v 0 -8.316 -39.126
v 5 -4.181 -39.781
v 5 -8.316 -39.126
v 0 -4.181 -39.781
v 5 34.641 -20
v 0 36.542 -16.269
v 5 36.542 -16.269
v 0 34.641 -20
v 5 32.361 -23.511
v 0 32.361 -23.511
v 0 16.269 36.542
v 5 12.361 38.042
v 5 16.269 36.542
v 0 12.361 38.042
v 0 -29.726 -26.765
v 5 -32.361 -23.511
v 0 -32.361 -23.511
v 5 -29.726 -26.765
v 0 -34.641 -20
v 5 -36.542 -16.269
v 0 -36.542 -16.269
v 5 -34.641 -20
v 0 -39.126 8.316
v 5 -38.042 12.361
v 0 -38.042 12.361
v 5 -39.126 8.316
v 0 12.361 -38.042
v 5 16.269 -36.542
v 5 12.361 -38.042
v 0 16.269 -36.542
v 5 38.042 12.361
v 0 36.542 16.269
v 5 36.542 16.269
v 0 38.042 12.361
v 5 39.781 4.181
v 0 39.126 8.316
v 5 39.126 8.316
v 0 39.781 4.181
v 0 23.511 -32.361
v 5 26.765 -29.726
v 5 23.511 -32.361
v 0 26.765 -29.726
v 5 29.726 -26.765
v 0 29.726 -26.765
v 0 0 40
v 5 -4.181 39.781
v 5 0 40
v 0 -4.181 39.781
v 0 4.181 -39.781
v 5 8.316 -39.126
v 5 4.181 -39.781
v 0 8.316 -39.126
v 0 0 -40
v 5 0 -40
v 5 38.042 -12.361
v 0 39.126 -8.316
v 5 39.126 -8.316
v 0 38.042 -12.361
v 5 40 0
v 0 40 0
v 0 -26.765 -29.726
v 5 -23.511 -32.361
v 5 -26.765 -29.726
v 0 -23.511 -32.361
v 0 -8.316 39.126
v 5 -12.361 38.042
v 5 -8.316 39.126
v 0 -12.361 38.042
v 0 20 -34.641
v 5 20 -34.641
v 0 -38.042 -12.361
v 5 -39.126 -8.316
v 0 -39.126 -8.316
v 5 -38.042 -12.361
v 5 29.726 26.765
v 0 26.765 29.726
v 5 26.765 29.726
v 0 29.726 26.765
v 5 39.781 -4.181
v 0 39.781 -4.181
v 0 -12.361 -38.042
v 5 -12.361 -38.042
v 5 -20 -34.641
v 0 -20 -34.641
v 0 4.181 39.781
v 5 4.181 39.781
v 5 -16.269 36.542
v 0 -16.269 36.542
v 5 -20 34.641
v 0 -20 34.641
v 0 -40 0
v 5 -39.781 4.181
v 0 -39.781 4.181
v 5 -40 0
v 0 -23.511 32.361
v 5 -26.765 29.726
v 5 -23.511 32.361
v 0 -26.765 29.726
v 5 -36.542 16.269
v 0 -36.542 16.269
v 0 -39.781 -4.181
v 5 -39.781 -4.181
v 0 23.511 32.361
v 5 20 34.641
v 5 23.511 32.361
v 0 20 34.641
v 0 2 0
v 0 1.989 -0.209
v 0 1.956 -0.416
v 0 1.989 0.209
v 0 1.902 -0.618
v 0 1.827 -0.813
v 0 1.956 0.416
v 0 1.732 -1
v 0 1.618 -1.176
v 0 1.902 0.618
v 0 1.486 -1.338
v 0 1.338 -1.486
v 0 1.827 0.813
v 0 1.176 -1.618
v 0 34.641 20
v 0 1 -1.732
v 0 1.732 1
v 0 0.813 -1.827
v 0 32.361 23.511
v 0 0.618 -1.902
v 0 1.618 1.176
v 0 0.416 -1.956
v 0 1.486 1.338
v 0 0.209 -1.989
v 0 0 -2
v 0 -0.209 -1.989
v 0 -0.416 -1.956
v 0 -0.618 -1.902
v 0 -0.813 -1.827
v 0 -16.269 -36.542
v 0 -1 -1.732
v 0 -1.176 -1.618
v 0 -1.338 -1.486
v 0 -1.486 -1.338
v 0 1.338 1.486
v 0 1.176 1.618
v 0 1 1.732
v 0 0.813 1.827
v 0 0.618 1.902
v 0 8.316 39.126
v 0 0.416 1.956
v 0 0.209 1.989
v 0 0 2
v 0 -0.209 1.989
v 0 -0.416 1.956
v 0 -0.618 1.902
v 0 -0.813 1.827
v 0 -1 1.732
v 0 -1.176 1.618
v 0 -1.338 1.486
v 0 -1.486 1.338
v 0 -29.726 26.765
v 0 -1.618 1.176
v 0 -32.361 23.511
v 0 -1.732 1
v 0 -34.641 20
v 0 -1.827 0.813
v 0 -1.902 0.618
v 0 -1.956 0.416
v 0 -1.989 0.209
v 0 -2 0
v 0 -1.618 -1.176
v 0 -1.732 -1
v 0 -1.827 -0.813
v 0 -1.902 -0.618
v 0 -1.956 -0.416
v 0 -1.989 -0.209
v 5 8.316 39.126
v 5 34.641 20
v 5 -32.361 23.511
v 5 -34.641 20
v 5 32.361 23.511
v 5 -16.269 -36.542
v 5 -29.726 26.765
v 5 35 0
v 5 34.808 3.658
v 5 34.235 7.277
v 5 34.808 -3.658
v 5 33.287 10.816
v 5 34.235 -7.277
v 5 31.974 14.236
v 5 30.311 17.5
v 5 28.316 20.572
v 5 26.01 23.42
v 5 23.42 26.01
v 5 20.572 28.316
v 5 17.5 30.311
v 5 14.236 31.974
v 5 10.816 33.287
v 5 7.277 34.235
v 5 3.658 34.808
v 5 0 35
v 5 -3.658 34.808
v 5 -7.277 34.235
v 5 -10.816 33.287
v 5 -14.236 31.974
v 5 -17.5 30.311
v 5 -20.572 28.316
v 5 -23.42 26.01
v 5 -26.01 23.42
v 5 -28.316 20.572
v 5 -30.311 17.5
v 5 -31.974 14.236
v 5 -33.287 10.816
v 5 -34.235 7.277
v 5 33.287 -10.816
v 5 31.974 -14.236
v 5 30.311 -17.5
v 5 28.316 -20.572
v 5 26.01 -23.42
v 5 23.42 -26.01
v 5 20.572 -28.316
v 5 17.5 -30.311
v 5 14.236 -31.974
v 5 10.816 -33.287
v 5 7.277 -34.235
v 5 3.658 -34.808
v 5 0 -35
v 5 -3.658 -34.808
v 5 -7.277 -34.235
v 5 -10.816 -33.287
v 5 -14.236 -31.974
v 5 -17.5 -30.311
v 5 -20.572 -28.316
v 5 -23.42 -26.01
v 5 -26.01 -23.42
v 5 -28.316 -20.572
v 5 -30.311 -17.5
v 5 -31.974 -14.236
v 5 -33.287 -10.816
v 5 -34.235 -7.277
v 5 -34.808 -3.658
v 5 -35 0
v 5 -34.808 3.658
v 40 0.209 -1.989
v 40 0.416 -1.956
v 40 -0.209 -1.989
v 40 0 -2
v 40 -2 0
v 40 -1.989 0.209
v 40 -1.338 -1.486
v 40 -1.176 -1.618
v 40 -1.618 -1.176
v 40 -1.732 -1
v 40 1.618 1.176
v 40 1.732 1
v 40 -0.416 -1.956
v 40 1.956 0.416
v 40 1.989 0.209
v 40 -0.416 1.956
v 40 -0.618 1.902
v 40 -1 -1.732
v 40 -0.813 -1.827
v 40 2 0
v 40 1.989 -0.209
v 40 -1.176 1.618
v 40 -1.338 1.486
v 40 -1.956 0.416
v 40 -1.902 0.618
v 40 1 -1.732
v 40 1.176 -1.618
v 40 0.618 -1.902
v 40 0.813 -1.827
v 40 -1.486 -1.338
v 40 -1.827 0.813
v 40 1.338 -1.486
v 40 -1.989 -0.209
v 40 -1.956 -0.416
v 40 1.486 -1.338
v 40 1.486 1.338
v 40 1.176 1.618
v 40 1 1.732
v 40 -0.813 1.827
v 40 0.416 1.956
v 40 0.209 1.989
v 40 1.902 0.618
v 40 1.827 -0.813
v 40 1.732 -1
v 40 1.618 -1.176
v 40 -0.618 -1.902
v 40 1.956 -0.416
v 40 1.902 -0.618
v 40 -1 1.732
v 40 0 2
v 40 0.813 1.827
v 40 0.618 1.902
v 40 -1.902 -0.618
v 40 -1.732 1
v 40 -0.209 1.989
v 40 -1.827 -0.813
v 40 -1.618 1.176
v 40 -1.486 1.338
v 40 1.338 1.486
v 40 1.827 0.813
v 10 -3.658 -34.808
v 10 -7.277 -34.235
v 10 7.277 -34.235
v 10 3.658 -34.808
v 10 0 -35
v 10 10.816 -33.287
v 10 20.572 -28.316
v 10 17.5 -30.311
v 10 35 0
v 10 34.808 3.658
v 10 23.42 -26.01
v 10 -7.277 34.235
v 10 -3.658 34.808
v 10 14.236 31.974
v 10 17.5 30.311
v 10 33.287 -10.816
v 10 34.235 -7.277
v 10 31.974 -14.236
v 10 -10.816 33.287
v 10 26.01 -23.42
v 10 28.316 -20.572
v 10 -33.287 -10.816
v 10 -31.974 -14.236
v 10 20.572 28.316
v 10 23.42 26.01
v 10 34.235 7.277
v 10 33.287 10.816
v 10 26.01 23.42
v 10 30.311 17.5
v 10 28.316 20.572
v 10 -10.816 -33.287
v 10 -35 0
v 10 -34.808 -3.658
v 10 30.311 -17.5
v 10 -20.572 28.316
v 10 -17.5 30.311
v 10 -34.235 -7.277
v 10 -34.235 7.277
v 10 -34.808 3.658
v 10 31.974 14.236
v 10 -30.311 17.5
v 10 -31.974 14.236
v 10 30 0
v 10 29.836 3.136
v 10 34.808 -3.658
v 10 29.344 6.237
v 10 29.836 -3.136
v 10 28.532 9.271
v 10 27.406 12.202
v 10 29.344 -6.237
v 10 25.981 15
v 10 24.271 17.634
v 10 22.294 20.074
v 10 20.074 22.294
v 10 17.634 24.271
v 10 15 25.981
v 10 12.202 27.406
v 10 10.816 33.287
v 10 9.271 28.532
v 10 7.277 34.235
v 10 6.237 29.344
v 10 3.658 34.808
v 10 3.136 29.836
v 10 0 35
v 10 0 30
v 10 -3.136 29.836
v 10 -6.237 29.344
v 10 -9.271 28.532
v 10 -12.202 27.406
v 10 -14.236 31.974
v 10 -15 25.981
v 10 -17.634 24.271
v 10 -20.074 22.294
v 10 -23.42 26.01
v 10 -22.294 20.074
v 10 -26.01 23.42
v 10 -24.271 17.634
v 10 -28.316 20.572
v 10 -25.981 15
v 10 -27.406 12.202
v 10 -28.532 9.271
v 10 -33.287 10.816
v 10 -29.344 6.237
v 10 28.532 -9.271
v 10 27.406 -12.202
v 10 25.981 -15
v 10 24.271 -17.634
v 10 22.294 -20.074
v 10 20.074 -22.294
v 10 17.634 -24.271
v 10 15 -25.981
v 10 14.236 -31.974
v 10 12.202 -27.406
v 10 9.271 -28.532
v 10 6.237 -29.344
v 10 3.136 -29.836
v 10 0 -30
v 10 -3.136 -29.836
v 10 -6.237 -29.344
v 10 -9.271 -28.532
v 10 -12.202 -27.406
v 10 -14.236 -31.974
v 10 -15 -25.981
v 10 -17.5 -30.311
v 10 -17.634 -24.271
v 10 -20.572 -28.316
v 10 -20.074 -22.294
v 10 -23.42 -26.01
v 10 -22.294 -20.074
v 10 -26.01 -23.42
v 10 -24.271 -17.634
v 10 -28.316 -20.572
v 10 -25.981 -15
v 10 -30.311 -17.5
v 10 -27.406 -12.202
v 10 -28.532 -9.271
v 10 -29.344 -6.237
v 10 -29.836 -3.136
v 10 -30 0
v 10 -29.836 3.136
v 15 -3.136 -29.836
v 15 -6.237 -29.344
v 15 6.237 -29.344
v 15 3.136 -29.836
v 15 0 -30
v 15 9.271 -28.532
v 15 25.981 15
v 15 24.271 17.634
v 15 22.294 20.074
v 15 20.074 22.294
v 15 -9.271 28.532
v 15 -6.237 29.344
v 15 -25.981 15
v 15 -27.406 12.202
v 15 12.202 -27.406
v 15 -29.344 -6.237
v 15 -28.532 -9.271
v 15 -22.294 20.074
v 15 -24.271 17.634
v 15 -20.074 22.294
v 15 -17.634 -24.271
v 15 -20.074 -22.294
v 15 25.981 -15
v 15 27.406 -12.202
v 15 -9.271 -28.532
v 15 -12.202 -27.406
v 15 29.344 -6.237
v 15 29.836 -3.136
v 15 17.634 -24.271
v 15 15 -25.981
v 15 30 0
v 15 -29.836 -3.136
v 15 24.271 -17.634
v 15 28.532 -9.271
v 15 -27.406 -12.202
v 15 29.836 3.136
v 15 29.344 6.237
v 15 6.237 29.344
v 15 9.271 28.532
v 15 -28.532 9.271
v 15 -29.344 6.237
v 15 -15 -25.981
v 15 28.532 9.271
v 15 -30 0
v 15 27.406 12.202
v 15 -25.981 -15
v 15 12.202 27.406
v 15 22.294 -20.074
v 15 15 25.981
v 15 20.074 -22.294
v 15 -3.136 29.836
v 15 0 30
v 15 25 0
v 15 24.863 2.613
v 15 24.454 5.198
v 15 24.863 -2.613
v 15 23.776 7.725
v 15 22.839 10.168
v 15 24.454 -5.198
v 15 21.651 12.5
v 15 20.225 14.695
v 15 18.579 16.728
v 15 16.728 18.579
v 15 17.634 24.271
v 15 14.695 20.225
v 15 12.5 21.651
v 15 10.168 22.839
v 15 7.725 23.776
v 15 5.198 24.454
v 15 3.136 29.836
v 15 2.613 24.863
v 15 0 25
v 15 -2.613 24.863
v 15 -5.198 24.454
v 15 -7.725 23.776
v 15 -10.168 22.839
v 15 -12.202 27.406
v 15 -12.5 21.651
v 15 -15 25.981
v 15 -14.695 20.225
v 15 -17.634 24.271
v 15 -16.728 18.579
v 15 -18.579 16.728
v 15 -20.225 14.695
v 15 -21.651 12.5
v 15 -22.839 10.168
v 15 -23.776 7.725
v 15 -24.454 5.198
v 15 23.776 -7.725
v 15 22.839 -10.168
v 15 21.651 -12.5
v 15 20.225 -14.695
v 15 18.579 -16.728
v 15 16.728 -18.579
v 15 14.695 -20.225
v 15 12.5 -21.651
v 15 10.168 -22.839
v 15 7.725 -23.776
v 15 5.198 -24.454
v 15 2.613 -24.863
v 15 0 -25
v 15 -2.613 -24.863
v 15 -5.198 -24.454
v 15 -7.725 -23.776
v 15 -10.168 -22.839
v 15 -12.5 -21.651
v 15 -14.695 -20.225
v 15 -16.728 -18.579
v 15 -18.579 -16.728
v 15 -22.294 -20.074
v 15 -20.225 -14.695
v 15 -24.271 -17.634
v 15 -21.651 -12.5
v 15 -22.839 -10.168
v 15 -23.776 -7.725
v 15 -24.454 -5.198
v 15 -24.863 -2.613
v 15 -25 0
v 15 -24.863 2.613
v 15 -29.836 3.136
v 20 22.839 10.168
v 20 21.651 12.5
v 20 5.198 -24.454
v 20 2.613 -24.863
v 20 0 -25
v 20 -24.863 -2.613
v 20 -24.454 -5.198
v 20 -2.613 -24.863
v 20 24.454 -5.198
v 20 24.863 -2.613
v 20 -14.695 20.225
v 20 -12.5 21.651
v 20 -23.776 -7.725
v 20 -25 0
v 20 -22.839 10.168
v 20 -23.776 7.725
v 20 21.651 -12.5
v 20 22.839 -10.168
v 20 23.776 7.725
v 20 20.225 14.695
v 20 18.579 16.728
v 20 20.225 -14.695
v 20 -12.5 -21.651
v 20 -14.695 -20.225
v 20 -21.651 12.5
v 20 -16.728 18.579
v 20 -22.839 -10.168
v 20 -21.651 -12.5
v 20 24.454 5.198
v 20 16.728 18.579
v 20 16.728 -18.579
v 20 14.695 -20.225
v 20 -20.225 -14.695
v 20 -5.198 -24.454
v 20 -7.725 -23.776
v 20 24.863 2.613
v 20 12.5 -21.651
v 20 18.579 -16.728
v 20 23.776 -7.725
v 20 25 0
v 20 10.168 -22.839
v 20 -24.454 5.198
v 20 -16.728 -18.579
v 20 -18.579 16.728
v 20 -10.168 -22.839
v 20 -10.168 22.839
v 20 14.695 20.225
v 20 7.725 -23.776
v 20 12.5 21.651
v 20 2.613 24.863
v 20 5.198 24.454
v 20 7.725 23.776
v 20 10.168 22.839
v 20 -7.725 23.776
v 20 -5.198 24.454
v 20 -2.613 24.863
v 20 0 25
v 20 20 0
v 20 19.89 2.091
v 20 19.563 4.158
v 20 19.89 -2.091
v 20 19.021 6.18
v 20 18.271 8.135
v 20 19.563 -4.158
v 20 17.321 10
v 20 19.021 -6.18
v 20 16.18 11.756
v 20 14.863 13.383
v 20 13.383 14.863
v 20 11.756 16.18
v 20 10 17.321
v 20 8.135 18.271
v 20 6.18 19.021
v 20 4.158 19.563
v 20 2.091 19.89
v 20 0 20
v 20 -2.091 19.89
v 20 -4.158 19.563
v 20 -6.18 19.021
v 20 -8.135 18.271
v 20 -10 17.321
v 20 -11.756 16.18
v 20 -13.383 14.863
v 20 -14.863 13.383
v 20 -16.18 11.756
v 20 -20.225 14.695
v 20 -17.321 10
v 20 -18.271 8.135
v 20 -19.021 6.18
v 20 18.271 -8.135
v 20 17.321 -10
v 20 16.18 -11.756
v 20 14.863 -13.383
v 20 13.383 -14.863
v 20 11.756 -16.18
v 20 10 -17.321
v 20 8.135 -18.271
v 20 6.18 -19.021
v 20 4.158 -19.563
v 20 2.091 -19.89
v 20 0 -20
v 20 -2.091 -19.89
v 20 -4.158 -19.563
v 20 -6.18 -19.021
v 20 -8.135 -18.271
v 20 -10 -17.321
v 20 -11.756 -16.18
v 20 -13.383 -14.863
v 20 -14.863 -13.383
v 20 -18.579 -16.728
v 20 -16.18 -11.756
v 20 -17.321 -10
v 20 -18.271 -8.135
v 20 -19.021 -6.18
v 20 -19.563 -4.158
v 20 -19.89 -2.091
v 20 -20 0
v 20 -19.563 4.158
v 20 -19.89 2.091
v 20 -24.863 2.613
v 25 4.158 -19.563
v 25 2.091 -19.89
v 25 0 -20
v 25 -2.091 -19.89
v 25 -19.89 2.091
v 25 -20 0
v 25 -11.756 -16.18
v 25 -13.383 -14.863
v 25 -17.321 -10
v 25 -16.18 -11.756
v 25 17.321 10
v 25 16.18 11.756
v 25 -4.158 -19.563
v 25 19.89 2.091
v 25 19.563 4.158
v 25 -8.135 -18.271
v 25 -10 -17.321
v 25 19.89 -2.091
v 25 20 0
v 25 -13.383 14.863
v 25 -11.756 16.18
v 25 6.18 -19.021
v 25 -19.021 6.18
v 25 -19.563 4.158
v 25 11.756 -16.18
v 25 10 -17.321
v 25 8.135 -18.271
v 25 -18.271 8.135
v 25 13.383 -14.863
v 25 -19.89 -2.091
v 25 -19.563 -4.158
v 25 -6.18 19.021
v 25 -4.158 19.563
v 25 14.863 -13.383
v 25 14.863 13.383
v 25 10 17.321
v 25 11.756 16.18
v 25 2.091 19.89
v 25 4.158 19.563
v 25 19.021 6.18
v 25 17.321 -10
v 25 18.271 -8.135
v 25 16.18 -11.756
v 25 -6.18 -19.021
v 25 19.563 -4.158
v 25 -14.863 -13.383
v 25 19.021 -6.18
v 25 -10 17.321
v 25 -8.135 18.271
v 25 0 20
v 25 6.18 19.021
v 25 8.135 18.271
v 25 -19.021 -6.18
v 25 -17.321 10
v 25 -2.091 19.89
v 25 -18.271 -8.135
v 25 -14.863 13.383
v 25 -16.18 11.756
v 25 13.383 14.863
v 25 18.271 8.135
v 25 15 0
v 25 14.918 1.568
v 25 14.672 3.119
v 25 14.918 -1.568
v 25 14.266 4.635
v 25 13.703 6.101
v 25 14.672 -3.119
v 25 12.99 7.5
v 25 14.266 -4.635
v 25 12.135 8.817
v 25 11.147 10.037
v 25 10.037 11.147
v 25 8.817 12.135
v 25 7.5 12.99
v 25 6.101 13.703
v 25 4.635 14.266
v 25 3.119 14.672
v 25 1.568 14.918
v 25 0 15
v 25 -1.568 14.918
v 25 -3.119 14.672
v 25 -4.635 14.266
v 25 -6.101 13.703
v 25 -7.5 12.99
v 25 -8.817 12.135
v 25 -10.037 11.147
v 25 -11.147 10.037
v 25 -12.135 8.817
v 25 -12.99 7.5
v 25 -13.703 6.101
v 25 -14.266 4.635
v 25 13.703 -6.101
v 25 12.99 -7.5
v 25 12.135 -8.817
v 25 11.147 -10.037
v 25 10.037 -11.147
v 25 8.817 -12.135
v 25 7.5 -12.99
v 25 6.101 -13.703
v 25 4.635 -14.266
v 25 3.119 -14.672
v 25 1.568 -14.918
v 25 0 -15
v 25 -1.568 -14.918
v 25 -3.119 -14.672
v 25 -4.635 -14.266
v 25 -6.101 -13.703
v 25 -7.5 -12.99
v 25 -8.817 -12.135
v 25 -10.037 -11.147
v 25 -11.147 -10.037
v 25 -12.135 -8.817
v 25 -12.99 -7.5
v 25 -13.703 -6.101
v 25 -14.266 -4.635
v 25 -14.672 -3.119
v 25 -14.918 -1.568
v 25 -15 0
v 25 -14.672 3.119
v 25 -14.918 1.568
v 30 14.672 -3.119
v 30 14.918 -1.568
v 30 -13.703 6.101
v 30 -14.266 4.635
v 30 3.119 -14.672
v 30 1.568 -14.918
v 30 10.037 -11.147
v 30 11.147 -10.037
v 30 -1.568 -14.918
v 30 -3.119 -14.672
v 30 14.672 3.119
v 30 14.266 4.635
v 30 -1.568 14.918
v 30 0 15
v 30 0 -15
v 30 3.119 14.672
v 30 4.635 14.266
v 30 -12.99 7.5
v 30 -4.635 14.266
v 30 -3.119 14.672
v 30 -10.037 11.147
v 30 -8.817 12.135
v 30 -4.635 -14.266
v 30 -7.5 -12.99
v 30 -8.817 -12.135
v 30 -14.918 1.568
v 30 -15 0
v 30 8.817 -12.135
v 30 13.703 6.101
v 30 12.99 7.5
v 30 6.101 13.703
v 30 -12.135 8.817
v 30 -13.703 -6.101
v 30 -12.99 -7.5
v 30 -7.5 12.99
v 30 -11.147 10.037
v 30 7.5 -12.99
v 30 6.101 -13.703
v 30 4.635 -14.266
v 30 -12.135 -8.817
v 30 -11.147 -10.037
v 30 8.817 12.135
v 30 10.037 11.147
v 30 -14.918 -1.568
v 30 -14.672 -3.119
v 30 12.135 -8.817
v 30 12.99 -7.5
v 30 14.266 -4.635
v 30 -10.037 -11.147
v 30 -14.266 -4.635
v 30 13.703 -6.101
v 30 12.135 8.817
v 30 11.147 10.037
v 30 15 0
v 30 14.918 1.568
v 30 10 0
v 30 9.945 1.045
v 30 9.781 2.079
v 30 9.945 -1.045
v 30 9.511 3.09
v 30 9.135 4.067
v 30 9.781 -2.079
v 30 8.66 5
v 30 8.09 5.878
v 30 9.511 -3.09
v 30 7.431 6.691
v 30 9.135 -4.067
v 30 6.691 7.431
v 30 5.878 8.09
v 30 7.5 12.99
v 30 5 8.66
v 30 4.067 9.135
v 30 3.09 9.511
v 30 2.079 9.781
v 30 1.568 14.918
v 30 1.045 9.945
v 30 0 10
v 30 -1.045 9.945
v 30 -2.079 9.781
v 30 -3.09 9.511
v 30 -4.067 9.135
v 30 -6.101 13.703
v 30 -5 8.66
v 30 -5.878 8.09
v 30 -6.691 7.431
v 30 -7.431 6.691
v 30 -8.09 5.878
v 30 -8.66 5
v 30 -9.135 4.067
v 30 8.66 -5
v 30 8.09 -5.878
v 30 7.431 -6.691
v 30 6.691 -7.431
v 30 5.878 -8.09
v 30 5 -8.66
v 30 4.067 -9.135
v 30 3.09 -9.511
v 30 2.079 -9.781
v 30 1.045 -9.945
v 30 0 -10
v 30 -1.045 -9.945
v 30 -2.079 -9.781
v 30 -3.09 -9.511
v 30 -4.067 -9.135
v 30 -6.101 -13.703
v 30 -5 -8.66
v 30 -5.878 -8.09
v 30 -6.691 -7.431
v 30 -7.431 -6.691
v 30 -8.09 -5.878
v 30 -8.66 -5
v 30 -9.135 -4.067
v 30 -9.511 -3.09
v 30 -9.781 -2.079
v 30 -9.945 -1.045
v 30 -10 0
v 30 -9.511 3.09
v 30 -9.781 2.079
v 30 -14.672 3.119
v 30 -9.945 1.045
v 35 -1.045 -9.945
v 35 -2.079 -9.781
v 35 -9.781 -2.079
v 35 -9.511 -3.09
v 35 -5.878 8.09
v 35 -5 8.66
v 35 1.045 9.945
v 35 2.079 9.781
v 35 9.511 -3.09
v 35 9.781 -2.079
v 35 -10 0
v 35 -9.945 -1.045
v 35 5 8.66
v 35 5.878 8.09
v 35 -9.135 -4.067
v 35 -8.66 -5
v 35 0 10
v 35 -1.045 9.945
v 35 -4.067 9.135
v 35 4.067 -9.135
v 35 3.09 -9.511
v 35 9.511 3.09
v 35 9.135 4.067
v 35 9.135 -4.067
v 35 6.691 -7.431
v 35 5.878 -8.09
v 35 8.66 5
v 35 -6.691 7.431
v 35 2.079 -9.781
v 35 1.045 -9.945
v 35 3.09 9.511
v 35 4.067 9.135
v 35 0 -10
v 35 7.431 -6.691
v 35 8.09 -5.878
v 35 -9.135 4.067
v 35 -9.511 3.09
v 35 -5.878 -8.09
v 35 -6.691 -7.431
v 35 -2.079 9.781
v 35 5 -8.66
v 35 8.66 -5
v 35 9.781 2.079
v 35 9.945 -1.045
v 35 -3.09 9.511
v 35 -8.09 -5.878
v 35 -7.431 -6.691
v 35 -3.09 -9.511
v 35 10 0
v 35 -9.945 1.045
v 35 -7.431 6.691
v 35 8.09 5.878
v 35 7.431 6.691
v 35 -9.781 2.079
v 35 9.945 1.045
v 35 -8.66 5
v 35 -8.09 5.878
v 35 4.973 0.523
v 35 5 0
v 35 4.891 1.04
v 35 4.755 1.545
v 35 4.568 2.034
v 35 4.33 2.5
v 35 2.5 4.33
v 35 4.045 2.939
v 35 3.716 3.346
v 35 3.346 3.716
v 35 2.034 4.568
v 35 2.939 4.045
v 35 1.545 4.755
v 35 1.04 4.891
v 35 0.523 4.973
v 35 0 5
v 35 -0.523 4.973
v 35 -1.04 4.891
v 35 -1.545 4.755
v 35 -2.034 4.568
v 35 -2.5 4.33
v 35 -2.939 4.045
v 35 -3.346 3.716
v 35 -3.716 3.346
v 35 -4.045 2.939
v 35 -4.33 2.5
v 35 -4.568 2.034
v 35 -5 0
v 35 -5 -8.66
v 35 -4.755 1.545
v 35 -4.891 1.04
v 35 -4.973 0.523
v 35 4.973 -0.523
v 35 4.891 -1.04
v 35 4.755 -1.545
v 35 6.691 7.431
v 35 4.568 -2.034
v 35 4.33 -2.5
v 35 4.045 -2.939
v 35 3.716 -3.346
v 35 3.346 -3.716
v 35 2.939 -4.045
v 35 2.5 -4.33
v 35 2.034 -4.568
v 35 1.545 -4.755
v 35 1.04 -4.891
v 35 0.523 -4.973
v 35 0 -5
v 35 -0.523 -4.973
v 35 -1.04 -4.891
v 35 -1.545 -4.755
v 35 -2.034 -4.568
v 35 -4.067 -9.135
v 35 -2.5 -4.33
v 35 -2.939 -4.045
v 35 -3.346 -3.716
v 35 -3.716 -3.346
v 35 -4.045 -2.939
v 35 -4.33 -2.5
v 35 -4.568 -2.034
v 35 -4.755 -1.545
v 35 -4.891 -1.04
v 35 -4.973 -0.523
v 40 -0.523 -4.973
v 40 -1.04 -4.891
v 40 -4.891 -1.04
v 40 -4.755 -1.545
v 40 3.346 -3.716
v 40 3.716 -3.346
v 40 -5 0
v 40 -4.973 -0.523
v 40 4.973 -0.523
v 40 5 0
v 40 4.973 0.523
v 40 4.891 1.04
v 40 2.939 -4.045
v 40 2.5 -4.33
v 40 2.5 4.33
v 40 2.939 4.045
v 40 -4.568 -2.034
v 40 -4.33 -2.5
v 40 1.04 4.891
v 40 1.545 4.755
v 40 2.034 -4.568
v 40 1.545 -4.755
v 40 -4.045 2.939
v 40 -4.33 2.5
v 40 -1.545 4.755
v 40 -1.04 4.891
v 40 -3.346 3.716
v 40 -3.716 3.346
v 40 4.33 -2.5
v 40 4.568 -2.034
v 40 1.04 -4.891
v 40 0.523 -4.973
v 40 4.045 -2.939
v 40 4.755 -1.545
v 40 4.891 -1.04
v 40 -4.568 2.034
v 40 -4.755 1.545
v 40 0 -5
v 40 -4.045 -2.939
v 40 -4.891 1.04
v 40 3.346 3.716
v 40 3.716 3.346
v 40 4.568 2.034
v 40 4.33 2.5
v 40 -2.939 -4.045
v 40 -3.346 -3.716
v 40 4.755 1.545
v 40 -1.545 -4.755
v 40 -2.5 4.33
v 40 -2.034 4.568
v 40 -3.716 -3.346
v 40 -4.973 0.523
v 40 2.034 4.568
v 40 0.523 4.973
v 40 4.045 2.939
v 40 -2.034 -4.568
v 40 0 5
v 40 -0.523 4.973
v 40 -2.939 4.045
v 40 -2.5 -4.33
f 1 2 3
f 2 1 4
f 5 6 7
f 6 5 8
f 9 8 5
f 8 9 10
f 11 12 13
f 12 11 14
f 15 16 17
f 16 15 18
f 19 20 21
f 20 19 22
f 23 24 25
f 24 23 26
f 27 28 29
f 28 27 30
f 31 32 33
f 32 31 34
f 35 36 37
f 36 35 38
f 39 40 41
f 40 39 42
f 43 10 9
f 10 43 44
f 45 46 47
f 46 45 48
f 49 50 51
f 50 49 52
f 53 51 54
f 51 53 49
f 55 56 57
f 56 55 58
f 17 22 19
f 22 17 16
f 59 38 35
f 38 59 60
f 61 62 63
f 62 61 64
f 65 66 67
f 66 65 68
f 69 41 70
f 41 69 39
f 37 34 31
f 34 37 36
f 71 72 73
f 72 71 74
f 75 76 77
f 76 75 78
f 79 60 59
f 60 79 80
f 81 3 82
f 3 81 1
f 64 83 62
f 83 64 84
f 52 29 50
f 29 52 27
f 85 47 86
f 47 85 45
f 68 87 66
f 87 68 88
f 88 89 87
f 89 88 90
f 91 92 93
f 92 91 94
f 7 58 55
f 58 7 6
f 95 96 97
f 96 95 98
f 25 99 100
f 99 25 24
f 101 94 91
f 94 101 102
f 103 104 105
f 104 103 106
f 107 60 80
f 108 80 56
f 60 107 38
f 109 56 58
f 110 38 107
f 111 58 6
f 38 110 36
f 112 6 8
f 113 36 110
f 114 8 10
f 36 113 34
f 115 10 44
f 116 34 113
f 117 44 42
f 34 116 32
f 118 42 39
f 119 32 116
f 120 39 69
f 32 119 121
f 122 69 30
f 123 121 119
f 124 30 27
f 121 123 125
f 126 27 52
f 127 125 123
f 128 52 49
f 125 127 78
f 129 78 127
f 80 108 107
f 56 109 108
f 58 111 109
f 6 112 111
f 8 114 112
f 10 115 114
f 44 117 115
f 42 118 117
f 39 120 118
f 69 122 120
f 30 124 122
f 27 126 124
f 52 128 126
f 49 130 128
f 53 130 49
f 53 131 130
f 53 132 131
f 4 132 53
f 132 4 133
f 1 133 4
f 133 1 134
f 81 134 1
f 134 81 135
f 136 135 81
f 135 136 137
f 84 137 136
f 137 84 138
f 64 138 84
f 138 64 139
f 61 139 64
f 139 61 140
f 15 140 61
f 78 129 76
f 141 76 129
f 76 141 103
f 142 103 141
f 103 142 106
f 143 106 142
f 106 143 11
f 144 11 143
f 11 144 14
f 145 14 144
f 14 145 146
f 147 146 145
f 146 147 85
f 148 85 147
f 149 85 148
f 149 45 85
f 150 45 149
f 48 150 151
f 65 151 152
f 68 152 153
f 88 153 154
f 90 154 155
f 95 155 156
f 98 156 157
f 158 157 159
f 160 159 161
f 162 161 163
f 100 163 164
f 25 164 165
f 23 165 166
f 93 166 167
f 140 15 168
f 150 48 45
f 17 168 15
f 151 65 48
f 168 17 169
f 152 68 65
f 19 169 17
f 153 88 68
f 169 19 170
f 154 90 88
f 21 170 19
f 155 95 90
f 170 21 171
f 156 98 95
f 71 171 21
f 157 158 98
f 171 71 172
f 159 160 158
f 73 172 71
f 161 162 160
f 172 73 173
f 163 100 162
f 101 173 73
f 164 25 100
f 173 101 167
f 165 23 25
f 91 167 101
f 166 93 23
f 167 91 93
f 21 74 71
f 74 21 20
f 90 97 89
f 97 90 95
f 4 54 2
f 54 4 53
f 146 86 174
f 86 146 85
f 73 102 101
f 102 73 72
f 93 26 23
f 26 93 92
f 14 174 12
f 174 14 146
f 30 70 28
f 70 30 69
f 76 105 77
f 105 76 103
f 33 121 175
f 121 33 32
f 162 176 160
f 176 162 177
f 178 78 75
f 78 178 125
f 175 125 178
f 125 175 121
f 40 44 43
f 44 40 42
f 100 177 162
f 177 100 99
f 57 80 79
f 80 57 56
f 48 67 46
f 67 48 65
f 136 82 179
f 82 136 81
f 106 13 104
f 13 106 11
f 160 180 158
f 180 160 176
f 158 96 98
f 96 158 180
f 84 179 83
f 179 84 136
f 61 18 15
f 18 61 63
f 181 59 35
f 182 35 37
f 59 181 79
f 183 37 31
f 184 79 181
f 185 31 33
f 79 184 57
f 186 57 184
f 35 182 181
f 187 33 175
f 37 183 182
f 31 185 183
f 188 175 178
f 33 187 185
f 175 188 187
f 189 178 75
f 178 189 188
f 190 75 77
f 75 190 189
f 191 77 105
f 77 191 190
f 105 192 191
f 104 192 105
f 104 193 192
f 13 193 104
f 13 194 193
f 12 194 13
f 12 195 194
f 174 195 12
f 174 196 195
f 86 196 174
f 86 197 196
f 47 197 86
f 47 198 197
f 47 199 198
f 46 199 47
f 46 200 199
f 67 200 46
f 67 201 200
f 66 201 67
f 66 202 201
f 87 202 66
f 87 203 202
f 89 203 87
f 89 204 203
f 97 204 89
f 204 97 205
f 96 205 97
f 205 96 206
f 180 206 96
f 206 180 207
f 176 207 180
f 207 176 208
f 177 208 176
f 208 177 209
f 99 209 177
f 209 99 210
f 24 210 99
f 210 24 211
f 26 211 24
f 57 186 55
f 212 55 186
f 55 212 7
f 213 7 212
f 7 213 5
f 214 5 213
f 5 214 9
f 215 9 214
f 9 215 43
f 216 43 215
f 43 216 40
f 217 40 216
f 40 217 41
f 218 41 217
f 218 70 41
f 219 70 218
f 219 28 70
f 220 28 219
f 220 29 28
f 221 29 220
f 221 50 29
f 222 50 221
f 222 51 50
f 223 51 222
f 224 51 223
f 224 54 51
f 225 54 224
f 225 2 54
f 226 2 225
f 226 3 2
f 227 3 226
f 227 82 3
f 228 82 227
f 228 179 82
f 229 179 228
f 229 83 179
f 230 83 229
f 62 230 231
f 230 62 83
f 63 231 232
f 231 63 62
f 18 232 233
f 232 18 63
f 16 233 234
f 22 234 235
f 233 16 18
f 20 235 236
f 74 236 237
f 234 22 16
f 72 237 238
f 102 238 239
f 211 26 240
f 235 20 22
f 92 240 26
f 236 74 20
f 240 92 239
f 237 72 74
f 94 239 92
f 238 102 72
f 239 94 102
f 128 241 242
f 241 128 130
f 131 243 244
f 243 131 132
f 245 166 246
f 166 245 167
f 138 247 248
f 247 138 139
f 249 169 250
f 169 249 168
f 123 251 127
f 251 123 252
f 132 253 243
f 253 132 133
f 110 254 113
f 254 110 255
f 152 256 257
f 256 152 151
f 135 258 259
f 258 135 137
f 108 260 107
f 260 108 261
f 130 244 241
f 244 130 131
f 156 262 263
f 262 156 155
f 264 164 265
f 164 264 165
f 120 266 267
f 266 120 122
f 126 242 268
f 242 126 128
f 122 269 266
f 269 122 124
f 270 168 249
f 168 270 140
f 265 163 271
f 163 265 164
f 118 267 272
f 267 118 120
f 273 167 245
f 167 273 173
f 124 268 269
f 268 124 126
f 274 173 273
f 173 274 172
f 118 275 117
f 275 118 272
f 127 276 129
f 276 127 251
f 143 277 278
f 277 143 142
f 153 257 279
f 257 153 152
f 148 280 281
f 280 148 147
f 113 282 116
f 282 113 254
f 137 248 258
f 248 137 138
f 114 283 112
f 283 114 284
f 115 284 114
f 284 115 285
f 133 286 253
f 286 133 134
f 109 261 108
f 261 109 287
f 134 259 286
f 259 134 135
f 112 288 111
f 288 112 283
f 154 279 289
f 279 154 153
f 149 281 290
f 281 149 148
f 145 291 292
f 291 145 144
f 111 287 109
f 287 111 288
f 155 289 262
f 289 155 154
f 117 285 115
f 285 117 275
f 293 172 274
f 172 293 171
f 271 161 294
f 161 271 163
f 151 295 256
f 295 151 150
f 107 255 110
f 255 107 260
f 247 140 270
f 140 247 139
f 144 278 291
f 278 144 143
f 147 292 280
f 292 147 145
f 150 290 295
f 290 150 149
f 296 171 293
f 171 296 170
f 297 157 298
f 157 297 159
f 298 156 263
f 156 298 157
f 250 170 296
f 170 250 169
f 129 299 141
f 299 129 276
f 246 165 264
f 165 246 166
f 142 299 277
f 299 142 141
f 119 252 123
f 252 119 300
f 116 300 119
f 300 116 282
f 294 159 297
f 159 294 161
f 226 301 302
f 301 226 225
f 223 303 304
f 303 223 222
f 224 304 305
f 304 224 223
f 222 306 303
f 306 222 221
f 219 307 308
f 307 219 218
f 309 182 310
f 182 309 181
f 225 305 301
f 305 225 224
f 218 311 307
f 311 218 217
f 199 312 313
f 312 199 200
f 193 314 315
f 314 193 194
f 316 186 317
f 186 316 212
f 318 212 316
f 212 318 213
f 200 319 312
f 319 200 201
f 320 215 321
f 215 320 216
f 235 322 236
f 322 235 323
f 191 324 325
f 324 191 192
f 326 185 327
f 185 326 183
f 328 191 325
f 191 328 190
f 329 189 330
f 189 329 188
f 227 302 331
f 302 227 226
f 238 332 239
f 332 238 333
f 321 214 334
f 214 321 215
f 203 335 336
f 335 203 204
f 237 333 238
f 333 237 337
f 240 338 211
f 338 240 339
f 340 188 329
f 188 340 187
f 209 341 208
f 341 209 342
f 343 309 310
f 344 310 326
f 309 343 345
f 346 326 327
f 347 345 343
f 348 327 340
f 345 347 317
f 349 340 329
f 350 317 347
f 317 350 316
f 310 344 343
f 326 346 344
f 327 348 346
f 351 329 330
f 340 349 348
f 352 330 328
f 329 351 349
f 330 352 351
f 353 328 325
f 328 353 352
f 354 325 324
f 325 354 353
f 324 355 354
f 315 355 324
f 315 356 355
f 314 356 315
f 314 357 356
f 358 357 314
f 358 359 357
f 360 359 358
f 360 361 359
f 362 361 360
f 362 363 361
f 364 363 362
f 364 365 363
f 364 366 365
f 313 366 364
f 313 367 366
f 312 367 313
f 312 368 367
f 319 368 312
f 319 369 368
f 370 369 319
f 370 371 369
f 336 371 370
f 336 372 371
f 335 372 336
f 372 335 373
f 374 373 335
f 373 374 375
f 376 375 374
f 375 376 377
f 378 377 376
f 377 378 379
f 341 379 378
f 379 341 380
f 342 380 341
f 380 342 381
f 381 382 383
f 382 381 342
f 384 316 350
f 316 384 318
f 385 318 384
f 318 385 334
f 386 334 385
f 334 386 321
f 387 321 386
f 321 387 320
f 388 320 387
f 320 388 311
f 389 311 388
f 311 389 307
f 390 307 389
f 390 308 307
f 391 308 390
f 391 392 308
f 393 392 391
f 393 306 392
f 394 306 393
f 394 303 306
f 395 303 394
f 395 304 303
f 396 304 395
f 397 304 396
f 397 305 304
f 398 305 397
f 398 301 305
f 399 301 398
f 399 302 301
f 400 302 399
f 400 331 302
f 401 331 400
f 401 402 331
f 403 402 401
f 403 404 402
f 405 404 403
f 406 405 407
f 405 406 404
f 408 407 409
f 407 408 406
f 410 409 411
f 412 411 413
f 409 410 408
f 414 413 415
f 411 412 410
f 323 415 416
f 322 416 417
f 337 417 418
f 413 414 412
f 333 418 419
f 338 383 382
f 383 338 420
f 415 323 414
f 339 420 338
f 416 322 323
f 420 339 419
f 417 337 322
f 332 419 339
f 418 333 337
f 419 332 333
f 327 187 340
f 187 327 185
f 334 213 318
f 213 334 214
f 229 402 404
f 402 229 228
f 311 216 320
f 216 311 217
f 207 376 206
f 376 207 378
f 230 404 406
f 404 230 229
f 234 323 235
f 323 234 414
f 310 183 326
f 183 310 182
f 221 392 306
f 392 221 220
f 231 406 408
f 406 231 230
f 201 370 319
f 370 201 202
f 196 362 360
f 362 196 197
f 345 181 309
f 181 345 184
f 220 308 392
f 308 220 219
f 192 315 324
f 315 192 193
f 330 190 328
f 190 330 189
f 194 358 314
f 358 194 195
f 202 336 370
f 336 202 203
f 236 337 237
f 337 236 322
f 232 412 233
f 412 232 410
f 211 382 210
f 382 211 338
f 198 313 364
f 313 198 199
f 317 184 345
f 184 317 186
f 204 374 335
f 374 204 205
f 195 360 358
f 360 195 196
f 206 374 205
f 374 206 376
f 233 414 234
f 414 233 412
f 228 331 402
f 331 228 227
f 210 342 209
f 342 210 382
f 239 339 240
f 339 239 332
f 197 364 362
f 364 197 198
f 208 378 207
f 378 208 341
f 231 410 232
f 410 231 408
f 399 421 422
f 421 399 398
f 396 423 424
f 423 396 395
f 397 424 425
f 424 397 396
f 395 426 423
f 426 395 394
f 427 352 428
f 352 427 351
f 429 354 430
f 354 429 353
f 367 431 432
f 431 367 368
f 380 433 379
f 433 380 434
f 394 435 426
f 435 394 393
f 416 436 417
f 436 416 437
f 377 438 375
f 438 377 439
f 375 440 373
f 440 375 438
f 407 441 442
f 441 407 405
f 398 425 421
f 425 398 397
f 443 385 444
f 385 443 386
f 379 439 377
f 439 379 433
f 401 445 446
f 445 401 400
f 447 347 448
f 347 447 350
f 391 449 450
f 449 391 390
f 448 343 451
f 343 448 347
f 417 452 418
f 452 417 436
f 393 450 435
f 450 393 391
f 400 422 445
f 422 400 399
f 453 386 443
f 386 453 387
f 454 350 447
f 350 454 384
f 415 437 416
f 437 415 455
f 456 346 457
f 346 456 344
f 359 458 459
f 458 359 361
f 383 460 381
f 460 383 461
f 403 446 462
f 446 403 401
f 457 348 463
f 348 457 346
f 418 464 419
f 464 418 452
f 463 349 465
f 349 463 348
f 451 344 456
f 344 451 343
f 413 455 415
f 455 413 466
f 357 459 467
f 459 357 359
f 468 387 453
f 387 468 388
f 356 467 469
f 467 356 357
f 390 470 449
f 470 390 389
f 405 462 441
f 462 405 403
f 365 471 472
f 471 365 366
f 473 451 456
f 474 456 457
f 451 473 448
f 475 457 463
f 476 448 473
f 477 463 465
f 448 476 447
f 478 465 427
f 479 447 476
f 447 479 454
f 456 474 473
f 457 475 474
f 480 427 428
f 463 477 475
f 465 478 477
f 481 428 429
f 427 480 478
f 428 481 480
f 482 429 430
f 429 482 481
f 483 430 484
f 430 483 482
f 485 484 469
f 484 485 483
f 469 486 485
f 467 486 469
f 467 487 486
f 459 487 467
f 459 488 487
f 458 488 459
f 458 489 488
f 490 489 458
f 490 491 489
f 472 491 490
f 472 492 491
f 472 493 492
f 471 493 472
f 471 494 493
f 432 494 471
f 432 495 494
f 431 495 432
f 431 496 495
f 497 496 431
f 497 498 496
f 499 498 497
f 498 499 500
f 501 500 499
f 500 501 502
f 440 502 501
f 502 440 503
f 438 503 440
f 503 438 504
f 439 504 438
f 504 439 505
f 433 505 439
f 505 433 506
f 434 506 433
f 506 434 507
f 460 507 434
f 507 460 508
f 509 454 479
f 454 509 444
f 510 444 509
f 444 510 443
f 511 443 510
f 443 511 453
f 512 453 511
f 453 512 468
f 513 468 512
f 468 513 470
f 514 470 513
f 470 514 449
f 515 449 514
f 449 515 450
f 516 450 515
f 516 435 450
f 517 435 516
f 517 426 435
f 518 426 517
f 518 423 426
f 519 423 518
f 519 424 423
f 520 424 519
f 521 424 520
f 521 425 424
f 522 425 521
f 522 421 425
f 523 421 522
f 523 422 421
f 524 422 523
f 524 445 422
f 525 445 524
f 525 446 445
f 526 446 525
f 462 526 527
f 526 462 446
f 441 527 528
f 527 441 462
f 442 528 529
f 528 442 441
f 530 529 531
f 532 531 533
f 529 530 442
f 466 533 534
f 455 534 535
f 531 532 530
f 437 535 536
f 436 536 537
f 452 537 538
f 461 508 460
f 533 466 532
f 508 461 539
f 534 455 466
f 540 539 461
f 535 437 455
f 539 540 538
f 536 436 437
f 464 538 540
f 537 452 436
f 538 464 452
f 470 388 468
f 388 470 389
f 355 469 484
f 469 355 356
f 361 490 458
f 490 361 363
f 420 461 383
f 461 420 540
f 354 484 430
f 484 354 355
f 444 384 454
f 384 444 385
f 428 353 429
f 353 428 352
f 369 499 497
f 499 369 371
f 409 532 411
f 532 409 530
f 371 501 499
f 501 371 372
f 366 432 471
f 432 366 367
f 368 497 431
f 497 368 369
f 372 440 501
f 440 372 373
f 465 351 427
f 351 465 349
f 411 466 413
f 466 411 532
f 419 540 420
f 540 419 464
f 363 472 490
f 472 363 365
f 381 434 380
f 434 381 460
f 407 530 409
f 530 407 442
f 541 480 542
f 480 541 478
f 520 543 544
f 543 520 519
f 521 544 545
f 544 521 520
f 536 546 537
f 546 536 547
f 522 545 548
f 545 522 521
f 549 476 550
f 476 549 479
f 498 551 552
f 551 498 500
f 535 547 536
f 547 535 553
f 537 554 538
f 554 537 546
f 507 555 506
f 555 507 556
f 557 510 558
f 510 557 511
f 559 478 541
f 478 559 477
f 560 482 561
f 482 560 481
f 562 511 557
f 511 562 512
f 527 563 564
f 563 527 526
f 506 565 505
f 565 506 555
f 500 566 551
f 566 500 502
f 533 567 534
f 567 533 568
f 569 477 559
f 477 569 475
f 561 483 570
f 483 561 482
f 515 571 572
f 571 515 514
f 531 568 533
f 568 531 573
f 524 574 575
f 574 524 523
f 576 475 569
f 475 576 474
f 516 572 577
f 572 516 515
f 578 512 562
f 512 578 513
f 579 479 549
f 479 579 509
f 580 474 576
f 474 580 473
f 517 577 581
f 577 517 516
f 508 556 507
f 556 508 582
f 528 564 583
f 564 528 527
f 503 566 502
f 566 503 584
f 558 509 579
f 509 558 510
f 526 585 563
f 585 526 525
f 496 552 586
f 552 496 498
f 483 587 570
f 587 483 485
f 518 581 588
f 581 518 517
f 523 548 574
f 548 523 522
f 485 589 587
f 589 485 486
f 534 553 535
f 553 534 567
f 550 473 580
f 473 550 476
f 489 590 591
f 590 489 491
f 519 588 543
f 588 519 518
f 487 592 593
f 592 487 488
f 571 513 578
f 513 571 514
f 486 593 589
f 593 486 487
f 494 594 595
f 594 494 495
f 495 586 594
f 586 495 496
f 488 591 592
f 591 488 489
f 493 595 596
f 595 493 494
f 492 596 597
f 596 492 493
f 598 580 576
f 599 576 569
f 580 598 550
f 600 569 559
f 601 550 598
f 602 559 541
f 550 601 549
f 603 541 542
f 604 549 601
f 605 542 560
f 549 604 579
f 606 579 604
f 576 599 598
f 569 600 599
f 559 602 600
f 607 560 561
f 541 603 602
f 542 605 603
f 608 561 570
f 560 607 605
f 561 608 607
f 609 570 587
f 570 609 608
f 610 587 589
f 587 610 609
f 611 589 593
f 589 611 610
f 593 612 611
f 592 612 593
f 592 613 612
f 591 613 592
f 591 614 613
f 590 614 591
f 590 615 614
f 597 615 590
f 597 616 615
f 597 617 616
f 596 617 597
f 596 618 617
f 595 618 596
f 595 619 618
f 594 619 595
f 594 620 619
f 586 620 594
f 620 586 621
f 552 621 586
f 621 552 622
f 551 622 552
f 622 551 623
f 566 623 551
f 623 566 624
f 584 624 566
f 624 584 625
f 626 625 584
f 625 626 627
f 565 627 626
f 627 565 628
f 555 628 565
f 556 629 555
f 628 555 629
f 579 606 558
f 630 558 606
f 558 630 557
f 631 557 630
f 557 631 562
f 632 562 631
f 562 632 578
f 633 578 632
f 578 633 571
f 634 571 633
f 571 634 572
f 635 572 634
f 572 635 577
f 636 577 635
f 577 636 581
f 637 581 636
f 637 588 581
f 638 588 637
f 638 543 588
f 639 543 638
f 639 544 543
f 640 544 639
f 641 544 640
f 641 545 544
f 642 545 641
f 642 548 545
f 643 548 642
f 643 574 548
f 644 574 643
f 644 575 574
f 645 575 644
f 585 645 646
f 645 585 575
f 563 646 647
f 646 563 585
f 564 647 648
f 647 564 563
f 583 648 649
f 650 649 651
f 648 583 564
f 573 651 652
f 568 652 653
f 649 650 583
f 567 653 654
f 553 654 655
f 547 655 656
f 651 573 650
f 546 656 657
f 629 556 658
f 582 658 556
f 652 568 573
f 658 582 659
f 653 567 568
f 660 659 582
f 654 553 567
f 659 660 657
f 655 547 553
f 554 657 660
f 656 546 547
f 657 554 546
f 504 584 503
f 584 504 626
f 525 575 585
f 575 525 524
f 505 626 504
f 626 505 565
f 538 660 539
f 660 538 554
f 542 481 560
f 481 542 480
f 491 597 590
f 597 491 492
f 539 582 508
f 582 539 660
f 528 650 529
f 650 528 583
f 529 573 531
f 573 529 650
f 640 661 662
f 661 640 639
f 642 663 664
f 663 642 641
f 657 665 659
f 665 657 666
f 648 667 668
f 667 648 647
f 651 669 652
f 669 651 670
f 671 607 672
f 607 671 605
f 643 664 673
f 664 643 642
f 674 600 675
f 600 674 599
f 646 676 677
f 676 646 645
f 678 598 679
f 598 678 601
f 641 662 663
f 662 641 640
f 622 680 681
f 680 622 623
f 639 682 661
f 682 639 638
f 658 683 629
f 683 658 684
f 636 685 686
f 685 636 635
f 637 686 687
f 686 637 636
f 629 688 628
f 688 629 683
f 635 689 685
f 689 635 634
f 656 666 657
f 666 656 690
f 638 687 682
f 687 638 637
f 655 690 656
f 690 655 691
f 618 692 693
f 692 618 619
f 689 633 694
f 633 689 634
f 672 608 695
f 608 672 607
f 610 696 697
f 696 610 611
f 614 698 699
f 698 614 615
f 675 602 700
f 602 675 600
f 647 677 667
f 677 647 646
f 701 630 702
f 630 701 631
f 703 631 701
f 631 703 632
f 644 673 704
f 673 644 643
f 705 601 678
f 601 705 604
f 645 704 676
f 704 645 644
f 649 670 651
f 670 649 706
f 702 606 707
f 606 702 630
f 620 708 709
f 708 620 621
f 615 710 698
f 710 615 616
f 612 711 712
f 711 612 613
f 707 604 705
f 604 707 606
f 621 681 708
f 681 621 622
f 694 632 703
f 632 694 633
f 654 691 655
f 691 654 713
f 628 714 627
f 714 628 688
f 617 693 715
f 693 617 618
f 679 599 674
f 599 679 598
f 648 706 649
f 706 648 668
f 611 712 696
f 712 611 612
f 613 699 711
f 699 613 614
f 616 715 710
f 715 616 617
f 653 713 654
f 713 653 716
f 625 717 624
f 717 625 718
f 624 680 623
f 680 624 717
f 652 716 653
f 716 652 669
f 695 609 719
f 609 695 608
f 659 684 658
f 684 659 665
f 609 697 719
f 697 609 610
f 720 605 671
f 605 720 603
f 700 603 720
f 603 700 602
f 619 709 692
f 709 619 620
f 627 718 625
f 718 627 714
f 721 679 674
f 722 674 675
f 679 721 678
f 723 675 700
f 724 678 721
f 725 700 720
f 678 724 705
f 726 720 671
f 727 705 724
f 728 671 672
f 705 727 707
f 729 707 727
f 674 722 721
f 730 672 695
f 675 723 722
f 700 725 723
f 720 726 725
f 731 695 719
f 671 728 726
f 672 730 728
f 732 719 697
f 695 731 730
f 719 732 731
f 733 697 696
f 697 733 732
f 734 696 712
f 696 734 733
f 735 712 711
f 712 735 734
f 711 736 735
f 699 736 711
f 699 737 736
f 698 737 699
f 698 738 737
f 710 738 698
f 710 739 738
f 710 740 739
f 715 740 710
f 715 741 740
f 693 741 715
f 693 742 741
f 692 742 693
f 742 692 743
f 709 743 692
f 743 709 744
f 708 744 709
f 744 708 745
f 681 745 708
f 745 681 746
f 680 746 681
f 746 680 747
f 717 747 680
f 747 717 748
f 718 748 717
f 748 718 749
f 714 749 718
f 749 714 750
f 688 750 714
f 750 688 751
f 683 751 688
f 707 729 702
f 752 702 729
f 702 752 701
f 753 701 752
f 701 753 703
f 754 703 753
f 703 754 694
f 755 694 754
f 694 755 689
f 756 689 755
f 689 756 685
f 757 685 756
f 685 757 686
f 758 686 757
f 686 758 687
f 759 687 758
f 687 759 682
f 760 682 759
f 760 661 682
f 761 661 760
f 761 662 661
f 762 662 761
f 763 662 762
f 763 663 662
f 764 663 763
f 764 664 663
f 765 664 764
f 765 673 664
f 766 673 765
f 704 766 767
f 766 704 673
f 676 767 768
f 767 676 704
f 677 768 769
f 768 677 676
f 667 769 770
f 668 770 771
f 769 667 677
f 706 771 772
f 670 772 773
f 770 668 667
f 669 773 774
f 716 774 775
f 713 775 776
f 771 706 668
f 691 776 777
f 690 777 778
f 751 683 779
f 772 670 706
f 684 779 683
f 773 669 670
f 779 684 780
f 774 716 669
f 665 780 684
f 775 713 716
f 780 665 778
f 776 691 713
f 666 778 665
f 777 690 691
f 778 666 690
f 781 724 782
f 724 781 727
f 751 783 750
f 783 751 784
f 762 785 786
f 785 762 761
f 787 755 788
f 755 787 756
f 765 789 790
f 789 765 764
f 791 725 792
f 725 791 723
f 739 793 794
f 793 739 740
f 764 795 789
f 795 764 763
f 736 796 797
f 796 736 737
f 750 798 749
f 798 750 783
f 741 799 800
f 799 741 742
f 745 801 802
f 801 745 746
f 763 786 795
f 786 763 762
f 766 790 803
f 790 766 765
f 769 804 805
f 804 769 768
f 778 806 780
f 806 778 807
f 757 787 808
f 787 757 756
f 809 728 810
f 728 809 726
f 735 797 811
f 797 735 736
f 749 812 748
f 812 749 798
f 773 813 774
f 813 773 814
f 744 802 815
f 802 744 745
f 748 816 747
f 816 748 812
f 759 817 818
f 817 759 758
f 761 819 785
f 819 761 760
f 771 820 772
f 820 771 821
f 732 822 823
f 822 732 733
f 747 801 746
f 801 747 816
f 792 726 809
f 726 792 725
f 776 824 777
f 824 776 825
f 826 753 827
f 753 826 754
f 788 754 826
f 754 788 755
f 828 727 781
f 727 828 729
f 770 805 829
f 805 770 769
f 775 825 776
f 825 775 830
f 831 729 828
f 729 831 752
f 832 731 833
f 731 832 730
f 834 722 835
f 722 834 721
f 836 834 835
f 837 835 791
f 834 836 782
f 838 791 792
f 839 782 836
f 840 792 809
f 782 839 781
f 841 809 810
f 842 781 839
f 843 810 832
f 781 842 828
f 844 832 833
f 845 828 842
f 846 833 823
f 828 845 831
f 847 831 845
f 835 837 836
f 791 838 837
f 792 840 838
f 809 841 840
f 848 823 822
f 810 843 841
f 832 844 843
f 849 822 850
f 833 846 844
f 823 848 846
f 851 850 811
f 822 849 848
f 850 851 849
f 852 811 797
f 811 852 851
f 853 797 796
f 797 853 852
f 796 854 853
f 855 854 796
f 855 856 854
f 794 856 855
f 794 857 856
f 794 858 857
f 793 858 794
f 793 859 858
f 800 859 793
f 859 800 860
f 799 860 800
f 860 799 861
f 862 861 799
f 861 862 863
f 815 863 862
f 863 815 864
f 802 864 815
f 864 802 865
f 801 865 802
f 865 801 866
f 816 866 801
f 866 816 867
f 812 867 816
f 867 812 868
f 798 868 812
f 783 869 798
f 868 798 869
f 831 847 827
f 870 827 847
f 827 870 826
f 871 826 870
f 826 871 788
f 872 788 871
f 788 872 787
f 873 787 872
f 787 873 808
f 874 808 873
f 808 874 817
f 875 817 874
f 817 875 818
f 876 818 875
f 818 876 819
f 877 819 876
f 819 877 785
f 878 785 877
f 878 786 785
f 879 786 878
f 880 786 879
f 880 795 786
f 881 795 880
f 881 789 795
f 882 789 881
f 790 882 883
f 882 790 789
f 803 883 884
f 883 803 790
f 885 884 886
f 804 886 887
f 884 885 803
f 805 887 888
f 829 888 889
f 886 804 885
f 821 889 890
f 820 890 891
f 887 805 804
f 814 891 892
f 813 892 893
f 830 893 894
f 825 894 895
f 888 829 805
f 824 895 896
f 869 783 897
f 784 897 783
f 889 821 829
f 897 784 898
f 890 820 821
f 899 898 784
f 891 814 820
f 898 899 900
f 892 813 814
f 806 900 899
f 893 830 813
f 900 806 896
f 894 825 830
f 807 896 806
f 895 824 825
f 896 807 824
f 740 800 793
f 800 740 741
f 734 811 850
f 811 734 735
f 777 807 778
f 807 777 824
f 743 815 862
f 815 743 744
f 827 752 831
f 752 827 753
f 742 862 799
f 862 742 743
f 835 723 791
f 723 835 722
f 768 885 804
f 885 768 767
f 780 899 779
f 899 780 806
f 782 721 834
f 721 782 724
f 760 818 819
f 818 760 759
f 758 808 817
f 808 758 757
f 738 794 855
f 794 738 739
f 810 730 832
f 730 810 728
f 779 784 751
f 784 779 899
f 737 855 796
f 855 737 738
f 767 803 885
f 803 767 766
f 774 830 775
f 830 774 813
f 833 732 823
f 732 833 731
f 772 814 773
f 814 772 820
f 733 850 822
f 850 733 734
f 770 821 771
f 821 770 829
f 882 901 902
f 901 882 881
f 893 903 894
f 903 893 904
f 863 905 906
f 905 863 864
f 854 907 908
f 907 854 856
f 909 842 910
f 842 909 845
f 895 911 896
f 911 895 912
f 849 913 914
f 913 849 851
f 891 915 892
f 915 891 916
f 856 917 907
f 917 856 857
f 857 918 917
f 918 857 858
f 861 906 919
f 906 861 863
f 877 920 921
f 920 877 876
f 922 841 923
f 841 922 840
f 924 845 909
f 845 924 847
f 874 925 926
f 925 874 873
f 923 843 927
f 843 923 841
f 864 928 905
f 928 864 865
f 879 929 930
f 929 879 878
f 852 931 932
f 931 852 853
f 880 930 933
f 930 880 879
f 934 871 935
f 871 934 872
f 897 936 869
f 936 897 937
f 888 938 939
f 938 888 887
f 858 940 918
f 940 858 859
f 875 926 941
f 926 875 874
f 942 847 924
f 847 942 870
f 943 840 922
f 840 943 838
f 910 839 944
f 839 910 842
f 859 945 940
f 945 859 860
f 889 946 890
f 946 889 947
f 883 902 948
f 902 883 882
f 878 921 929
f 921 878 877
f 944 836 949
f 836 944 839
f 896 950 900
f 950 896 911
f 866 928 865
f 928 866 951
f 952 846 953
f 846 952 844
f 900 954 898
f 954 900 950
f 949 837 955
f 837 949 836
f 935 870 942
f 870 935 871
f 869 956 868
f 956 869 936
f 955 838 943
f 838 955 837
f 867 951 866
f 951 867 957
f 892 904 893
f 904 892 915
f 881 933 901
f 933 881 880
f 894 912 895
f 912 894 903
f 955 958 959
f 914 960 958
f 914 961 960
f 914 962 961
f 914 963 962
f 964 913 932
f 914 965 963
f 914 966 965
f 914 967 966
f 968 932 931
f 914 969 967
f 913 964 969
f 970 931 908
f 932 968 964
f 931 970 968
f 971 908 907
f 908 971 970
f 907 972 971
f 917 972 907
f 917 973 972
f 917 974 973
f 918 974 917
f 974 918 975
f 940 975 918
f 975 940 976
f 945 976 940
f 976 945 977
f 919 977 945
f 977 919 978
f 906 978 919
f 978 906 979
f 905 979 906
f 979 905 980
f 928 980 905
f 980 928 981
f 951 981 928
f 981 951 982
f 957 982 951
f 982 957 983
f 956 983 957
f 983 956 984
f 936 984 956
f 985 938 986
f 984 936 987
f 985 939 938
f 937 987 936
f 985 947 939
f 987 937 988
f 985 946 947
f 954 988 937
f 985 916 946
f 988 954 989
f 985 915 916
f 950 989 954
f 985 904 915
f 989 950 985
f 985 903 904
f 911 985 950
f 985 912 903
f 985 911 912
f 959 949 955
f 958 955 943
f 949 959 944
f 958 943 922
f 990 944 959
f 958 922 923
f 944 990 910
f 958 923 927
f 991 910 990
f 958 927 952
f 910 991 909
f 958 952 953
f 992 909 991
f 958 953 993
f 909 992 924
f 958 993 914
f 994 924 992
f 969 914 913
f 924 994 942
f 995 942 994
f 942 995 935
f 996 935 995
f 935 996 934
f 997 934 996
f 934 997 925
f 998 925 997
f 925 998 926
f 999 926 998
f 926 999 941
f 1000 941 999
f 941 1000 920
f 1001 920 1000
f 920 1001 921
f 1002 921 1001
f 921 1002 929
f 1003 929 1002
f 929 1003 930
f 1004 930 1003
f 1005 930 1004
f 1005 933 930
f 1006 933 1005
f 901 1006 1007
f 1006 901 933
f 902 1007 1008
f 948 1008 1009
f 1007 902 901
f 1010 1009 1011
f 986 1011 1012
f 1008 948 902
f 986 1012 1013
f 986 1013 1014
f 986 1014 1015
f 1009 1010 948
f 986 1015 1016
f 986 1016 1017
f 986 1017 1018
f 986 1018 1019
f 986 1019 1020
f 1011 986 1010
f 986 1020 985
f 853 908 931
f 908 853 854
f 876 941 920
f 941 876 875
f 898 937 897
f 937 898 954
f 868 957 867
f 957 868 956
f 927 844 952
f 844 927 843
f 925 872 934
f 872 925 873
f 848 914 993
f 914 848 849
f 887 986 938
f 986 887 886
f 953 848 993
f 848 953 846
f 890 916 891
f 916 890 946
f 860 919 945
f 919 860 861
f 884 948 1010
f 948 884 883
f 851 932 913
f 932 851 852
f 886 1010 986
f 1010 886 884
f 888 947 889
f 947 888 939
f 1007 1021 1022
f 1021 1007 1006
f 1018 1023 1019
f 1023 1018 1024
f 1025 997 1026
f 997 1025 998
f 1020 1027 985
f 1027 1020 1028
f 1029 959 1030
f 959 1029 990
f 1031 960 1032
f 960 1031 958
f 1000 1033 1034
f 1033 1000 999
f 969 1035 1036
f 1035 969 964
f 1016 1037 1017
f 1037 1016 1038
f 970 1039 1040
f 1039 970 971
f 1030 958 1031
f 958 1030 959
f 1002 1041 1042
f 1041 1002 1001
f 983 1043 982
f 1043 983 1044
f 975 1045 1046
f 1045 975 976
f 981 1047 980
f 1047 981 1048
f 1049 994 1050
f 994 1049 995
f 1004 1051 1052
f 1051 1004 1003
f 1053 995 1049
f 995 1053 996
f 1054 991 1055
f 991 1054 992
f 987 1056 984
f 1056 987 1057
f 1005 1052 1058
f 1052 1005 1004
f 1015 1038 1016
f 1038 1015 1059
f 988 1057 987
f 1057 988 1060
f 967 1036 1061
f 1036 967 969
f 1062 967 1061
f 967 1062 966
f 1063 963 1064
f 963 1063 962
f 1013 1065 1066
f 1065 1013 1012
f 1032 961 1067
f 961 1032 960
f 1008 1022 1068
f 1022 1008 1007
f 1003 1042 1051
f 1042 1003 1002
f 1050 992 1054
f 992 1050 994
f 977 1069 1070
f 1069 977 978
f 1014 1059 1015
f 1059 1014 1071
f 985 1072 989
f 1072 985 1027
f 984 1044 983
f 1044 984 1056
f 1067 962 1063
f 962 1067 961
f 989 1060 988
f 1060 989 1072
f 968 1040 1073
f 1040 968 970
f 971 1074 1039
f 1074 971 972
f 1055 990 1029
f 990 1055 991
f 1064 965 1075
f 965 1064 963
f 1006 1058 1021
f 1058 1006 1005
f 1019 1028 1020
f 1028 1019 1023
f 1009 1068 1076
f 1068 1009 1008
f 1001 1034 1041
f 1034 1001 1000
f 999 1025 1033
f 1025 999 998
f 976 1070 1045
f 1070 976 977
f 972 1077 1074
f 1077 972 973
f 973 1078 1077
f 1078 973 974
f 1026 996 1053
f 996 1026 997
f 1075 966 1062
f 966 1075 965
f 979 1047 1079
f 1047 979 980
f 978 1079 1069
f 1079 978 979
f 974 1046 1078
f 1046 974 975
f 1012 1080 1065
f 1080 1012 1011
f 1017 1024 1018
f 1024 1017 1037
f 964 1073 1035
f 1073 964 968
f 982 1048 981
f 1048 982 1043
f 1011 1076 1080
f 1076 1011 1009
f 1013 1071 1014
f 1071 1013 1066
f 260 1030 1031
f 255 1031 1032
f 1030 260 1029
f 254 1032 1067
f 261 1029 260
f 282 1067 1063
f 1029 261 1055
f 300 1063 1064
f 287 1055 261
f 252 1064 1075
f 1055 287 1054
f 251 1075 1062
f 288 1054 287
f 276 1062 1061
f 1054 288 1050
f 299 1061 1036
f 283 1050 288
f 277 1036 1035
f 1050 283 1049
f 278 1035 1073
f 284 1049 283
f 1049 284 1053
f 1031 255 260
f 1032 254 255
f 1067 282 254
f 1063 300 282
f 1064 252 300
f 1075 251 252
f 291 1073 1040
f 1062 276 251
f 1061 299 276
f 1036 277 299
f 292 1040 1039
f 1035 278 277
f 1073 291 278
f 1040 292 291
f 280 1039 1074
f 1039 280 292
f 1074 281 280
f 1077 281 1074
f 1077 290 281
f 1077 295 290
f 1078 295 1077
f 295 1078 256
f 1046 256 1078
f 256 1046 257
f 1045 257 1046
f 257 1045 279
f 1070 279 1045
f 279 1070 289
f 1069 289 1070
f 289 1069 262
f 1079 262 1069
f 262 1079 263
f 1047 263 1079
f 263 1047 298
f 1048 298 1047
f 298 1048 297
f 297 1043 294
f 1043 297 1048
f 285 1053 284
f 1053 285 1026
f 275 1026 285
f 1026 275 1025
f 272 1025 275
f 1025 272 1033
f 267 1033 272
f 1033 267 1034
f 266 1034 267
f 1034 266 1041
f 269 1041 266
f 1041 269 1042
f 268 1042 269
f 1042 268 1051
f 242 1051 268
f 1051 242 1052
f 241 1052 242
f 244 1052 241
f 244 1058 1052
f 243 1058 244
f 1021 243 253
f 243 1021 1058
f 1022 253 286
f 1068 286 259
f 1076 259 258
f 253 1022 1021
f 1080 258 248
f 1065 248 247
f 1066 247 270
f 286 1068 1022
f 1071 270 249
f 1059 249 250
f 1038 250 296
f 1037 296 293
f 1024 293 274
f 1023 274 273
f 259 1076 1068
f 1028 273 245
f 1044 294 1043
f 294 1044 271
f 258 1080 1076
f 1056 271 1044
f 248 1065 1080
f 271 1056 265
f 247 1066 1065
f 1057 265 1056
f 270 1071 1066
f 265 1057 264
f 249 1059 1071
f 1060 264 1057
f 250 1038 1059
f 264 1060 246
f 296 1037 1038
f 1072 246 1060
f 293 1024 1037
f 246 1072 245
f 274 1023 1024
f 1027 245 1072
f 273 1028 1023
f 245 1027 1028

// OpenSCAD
dx=5;

scale=10;
$fn=60;

n=round(4/(dx/scale));
echo (n);
for (i=[0:1:n]){
    x=i*dx/scale;
    echo(x);
    translate ([i*dx,0,0])
    rotate ([0,90,0])
    difference(){
        cylinder (h=dx,r=(-x+4)*scale);
        cylinder (h=dx,r=2);
    }
    
}
